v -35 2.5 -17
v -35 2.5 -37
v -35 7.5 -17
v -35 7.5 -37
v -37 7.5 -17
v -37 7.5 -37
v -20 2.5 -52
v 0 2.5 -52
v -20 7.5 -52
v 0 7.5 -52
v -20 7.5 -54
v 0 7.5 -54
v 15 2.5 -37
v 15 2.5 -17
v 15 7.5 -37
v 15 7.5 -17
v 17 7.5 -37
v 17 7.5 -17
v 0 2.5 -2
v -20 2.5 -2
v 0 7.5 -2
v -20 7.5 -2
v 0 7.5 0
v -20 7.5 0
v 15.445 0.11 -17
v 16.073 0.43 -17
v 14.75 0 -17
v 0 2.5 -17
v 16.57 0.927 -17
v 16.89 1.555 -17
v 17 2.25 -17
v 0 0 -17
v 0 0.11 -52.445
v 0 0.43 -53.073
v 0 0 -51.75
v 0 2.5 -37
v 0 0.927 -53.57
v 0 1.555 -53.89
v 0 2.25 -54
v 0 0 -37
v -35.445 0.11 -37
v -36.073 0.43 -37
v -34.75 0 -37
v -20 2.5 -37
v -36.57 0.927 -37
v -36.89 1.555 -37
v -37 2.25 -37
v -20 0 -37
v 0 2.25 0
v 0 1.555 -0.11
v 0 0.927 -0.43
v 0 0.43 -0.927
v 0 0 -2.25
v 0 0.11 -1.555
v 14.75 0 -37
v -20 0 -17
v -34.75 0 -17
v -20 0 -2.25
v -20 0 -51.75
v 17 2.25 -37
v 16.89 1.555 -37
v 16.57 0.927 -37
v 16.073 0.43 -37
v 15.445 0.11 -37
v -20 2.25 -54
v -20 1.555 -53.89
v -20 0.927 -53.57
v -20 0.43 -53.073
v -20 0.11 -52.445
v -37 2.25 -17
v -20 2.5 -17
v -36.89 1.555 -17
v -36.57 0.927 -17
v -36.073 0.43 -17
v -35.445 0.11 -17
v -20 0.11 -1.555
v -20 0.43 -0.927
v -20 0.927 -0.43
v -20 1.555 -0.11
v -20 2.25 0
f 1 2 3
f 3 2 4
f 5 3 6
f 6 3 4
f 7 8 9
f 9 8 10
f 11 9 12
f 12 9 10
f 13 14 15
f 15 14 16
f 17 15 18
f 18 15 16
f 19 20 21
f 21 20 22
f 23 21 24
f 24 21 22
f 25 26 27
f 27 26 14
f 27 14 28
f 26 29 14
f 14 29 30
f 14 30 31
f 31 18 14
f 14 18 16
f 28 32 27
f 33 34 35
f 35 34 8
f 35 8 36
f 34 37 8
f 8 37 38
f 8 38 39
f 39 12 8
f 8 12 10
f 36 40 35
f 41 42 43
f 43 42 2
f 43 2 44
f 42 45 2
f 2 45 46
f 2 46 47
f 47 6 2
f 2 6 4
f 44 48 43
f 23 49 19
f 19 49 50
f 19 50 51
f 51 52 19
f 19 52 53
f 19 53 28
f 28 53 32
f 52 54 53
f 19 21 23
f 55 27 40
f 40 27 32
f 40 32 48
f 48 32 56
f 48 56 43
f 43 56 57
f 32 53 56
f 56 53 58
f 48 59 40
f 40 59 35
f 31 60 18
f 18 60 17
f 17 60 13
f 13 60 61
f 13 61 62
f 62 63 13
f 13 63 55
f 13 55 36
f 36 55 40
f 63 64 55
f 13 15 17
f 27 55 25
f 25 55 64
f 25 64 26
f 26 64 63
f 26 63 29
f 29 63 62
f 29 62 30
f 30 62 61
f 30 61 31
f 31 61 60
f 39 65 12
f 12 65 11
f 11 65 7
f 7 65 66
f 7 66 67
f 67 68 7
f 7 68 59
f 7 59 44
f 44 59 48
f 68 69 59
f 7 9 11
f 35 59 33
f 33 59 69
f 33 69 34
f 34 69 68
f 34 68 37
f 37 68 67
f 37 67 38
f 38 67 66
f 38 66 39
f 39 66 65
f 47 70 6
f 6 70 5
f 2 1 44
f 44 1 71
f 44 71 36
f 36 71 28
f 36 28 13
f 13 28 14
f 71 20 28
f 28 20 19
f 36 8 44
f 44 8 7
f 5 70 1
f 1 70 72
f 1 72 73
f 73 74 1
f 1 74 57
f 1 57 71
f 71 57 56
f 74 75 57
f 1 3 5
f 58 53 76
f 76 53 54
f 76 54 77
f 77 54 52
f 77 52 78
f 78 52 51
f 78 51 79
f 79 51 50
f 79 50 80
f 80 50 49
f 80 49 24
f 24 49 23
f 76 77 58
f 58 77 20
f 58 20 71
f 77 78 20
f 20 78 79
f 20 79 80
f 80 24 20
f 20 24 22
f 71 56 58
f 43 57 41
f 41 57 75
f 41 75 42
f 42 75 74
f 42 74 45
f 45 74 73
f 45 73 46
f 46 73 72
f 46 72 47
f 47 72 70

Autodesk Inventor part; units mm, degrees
ref_plane "YZ Plane" through (0, 0, 0) normal (1, 0, 0) x (0, 1, 0)
ref_plane "XZ Plane" through (0, 0, 0) normal (0, 1, 0) x (-1, 0, 0)
ref_plane "XY Plane" through (0, 0, 0) normal (0, 0, 1) x (1, 0, 0)
sketch "Sketch1" plane through (0, 0, 0) normal (0, 1, 0) x (-1, 0, 0)
  line L0 (0, 0) -> (20, 0)
  line L1 (20, 0) -> (20, -54)
  line L2 (20, -54) -> (0, -54)
  line L3 (0, -54) -> (0, 0)
  line L4 (20, -27) -> (0, -27)
  line L5 (-17, -17) -> (37, -17)
  line L6 (37, -17) -> (37, -37)
  line L7 (37, -37) -> (-17, -37)
  line L8 (-17, -37) -> (-17, -17)
  line L9 (-17, -17) -> (37, -37) construction
  line L10 (37, -17) -> (-17, -37) construction
  point P0 (10, -27)
  point P1 (0, -17)
  point P2 (0, -37)
  point P3 (20, -37)
  point P4 (20, -17)
  dimension "d0" = 20
  dimension "d1" = 54
  dimension "d2" = 54
  dimension "d3" = 20
extrude "Extrusion1" add sketch "Sketch1" along normal blind 2.5
sketch "Sketch2" plane through (0, 2.5, 0) normal (0, 1, 0) x (1, 0, 0)
  line L0 (-20, 0) -> (0, 0) projected
  line L1 (0, 0) -> (0, 17) projected
  line L2 (-20, 0) -> (0, 0)
  line L3 (0, 0) -> (0, 2)
  line L4 (0, 2) -> (-20, 2)
  line L5 (-20, 2) -> (-20, 0)
  dimension "d6" = 2
extrude "Extrusion2" add sketch "Sketch2" along normal blind 5
sketch "Sketch3" plane through (0, 2.5, 0) normal (0, 1, 0) x (1, 0, 0)
  line L0 (0, 2) -> (0, 17) projected
  line L1 (-20, 37) -> (0, 17)
  line L2 (0, 17) -> (-20, 17)
  line L3 (-20, 17) -> (0, 37)
  point P0 (0, 0)
  point P1 (-10, 27)
pattern_circular "Circular Pattern1" count 4 over 360 about axis through (-10, 2.5, -27) along (0, 1, 0) of "Extrusion2"
fillet "Fillet1" radius 2.25 4 edges at (-10, 0, 0) (-37, 0, -27) (-10, 0, -54) (17, 0, -27)
sketch "Sketch4" plane through (-20, 0, -17) normal (-1, 0, 0) x (0, 0, 1)
  point P0 (17, 0)
